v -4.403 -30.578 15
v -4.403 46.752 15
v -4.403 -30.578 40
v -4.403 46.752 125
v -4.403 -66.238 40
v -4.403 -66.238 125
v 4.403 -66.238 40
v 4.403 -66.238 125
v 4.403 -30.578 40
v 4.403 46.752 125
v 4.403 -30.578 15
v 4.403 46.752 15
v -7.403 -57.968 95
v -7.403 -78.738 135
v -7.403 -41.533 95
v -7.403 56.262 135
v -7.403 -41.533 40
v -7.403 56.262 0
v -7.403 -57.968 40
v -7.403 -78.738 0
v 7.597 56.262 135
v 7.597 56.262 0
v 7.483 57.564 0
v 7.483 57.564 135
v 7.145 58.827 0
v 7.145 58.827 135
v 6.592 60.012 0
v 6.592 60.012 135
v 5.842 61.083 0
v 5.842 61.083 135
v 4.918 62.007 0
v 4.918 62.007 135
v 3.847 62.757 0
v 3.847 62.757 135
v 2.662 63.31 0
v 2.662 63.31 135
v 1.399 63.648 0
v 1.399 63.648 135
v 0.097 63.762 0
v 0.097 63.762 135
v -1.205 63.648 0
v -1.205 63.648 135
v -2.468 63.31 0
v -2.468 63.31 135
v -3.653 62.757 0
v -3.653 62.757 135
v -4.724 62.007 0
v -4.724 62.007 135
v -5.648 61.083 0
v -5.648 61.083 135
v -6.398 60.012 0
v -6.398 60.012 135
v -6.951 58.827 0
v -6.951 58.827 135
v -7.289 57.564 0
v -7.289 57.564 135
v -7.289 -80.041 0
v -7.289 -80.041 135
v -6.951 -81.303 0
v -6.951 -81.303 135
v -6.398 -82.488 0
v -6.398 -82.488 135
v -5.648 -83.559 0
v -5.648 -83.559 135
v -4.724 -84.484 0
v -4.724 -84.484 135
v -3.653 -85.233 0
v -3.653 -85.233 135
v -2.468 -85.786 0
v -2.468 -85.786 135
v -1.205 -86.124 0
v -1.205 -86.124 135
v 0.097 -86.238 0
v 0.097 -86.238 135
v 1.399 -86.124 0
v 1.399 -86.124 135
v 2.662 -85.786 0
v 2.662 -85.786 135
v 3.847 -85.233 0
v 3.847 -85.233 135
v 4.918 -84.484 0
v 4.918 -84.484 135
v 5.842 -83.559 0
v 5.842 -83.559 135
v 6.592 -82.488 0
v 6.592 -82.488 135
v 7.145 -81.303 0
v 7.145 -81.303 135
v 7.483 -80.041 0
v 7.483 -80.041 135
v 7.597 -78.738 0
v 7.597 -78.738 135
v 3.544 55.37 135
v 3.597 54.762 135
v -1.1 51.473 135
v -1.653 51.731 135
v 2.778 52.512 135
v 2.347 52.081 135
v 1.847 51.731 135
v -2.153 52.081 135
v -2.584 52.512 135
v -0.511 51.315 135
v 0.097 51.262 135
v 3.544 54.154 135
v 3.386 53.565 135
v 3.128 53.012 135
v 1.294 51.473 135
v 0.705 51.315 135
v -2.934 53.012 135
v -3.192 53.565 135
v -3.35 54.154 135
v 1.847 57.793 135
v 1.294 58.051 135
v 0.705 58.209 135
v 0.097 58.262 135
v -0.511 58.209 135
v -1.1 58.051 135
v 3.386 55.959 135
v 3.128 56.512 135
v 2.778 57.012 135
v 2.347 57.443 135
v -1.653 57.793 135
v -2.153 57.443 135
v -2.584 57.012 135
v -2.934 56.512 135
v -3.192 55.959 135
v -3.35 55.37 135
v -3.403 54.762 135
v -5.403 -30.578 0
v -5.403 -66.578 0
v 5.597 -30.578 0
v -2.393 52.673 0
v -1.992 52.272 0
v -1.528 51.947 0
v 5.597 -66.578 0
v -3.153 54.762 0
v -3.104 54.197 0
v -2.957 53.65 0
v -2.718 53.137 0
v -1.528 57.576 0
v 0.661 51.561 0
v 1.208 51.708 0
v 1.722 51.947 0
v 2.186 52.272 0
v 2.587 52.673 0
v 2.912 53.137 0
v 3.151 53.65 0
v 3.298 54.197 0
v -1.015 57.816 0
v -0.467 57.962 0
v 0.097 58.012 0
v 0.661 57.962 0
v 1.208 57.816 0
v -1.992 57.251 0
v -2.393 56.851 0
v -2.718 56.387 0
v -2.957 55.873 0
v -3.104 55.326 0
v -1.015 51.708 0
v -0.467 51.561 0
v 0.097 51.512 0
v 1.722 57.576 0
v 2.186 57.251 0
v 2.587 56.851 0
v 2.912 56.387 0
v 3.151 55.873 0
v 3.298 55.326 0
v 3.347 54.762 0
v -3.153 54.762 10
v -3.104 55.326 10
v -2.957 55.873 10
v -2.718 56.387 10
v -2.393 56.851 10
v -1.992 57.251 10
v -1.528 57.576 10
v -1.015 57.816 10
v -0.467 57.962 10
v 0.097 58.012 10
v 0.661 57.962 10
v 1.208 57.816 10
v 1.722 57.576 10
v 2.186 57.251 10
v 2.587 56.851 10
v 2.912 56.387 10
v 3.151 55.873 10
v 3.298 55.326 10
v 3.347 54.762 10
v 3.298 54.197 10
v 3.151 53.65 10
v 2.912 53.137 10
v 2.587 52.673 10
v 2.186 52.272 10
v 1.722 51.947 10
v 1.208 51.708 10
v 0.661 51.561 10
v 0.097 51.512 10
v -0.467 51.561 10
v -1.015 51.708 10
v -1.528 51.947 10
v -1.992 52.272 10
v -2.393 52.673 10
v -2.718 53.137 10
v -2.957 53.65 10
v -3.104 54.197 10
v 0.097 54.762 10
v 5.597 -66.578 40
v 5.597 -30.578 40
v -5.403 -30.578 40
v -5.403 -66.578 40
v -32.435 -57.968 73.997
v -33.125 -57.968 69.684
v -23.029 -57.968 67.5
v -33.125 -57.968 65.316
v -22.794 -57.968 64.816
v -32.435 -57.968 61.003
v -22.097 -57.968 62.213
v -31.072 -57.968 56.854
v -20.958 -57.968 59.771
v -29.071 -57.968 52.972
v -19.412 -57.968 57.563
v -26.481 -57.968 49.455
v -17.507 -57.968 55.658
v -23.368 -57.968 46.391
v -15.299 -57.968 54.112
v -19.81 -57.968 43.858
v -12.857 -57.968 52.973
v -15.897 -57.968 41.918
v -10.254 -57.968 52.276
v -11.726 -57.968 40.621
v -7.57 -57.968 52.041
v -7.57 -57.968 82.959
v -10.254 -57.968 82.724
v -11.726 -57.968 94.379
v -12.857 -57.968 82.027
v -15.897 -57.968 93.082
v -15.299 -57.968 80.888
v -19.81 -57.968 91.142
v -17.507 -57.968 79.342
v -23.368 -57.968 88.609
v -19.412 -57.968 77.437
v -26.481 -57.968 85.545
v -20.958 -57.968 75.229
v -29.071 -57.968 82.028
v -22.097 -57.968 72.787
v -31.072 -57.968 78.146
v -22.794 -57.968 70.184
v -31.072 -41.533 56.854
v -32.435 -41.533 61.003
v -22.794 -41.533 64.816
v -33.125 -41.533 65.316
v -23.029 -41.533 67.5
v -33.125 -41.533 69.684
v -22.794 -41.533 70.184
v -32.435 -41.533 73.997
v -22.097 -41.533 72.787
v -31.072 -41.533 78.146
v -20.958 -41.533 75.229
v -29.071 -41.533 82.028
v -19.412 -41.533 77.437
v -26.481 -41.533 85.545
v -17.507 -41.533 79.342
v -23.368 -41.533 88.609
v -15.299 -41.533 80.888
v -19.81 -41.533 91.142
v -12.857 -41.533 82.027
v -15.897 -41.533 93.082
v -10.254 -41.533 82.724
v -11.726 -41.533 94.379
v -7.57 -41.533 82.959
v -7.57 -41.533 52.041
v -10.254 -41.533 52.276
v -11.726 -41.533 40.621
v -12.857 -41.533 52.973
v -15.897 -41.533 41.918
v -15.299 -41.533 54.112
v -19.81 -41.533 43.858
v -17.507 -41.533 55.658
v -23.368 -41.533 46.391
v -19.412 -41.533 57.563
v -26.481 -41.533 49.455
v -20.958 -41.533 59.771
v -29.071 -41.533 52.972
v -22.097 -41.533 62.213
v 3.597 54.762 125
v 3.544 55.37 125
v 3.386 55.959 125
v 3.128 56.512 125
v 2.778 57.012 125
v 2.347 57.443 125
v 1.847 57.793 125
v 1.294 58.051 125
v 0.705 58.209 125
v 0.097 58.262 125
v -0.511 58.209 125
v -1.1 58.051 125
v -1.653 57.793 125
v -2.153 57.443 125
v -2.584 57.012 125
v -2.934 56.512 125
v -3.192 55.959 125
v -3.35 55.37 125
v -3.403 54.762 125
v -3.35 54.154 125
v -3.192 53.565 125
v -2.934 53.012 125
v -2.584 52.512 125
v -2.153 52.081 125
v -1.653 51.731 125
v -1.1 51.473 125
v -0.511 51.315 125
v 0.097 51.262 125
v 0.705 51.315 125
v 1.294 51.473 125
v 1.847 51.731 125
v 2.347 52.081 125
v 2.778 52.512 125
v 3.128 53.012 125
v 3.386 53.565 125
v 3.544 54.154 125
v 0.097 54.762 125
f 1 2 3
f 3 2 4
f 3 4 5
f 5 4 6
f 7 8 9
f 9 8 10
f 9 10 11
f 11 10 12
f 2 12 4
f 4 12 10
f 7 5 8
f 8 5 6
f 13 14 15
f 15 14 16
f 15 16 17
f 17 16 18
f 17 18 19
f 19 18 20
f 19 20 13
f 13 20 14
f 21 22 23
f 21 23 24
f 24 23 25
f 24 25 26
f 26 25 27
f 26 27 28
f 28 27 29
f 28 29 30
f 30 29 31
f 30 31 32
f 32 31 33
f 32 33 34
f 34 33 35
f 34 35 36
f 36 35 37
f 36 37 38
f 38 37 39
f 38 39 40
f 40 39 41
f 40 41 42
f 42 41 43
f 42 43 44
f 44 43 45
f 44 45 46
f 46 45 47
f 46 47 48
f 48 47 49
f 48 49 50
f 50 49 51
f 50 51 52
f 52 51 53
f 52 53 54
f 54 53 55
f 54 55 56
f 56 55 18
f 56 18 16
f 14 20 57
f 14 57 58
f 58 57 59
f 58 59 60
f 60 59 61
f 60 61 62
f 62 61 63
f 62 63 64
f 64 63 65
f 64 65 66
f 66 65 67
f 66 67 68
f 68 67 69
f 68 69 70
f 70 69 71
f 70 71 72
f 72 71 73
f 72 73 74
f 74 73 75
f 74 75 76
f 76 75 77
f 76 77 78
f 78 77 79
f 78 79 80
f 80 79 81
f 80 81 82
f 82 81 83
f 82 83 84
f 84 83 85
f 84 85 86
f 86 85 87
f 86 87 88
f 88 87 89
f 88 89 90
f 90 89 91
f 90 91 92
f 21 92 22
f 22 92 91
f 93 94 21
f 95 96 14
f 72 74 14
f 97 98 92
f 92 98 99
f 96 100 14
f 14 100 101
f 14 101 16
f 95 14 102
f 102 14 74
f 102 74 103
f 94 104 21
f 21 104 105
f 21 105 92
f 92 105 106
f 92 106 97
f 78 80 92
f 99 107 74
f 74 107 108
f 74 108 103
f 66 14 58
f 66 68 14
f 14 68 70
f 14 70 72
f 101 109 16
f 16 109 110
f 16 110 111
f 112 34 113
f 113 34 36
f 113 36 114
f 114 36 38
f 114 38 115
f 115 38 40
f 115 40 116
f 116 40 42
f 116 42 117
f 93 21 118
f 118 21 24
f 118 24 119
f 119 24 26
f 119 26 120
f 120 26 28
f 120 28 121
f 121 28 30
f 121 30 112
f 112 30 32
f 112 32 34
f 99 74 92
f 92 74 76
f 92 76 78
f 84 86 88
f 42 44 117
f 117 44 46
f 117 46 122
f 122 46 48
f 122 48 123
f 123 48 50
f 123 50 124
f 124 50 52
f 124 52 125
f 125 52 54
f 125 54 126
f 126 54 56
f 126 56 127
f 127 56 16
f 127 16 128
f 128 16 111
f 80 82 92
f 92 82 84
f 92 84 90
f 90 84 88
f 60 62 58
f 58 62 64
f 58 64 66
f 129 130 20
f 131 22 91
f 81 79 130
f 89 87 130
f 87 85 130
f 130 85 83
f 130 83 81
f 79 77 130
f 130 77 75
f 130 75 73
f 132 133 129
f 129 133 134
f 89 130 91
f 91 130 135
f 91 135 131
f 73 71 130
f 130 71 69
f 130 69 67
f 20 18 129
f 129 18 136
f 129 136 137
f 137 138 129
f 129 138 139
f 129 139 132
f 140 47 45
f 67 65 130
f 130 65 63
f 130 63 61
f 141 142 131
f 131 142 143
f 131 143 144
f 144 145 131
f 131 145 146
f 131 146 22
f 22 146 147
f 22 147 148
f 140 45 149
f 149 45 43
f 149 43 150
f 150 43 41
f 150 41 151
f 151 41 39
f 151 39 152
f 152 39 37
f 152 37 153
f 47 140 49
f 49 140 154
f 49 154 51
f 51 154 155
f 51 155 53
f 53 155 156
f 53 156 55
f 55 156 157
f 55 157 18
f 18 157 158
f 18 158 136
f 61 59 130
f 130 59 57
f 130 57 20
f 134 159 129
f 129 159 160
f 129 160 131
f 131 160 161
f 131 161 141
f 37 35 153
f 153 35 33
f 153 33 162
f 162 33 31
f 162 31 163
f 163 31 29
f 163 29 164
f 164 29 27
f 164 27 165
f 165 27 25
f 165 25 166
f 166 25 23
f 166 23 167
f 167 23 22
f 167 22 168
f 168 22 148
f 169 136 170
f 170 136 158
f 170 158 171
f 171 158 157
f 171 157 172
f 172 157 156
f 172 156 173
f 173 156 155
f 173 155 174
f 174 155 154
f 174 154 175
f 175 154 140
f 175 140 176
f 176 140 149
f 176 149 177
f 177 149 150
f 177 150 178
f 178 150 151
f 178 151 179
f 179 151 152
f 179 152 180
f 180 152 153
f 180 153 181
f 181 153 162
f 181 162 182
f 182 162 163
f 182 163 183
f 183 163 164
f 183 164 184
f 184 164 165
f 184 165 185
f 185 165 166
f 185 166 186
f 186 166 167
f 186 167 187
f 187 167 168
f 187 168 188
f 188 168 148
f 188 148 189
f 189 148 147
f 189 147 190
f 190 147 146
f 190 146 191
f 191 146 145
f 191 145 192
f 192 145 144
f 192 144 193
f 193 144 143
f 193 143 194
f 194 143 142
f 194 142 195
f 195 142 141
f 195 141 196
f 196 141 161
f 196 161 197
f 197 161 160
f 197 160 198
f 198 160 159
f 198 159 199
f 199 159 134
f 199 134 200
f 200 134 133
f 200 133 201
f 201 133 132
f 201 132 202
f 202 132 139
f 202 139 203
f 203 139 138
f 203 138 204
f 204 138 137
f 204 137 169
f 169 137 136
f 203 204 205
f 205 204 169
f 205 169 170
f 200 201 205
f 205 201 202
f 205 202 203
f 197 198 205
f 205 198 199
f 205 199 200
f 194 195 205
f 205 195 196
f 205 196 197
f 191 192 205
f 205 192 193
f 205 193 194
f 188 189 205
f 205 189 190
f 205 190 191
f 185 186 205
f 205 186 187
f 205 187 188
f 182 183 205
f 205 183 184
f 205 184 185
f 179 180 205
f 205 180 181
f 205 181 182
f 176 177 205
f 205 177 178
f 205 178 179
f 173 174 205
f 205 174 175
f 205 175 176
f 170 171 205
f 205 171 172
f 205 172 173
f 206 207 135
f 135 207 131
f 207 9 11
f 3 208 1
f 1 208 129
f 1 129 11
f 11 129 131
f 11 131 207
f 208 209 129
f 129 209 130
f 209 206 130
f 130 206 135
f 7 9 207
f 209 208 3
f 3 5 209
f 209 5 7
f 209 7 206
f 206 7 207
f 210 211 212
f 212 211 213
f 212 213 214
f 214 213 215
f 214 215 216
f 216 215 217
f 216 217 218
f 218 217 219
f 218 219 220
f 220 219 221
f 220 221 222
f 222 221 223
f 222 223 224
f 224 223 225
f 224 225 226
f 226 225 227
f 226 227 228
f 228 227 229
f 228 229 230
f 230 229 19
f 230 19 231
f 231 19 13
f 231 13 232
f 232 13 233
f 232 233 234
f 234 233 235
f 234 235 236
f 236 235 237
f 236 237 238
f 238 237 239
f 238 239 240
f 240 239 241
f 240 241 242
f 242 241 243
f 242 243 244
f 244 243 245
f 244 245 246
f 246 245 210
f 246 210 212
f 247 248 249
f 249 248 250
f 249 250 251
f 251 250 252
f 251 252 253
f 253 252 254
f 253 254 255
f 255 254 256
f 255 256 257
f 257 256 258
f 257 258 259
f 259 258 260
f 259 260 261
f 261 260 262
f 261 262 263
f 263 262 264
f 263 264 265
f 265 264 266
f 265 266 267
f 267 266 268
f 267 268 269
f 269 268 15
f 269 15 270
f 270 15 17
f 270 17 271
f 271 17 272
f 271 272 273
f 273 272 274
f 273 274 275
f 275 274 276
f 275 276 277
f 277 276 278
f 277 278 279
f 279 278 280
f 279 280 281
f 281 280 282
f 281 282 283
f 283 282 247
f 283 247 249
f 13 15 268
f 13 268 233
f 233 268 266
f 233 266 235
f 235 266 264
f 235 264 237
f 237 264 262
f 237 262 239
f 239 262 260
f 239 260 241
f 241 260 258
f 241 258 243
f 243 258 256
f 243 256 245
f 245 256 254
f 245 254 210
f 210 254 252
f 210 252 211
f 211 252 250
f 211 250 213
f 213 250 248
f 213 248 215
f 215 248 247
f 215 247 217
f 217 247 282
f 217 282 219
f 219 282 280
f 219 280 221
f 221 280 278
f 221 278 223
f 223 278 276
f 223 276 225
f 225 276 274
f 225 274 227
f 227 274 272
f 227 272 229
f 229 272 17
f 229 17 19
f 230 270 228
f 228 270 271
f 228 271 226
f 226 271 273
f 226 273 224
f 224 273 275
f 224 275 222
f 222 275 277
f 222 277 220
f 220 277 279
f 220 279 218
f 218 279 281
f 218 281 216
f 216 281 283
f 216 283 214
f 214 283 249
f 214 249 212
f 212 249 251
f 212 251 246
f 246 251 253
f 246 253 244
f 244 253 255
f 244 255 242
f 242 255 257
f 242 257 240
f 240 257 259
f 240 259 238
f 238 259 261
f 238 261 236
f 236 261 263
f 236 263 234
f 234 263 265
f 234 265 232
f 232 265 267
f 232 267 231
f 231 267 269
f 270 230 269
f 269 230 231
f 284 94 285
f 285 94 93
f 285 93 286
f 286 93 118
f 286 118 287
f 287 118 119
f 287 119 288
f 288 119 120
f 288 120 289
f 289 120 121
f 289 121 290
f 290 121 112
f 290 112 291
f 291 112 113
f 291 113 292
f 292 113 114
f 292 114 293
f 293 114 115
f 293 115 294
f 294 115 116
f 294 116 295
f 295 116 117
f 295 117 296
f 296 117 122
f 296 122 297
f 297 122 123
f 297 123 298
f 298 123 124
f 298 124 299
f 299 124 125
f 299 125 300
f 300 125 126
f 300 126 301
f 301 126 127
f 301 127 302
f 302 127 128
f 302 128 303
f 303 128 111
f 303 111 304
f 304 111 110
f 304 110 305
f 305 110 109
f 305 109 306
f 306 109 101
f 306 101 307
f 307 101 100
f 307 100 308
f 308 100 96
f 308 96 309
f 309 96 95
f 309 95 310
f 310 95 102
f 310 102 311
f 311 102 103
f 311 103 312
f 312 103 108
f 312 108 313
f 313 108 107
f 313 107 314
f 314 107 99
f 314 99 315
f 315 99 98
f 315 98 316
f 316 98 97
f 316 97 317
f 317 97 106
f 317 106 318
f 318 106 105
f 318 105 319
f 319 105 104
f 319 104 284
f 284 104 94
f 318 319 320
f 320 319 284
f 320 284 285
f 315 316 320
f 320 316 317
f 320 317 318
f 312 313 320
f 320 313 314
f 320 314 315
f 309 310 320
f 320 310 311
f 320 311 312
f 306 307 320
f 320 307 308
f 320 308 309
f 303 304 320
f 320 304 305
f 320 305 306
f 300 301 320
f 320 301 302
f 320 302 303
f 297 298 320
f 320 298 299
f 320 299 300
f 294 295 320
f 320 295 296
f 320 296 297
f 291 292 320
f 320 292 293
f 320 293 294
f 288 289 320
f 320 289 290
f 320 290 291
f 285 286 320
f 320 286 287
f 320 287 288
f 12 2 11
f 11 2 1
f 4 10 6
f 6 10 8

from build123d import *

# Parameters (mm, degrees)
BOSS_EXTRUDE1_DEPTH = 135
SKETCH3_R           = 3.25
CUT_EXTRUDE2_DEPTH  = 10
SKETCH6_W           = 11
SKETCH6_H           = 36
CUT_EXTRUDE3_DEPTH  = 40
SKETCH7_W           = 55
SKETCH7_H           = 16.435142828
BOSS_EXTRUDE2_DEPTH = 35
CUT_EXTRUDE4_DEPTH  = 20
CUT_EXTRUDE5_DEPTH  = 20
SKETCH12_R          = 3.5
CUT_EXTRUDE6_DEPTH  = 10
CUT_EXTRUDE7_DEPTH  = 120
SKETCH14_W          = 10
SKETCH14_H          = 112.990035736
BOSS_EXTRUDE3_DEPTH = 9


with BuildPart() as part:
    # Sketch2 → Boss-Extrude1 (new body)
    with BuildSketch(Plane.XY):
        with BuildLine():
            Line((-7.403081865, 56.261800555), (-7.403081865, -78.738199445))
            ThreePointArc((-7.403081865, -78.738199445), (0.096918135, -86.238199445), (7.596918135, -78.738199445))
            Line((7.596918135, -78.738199445), (7.596918135, 56.261800555))
            ThreePointArc((7.596918135, 56.261800555), (0.096918135, 63.761800555), (-7.403081865, 56.261800555))
        make_face()
    extrude(amount=BOSS_EXTRUDE1_DEPTH)

    # Sketch3 → Cut-Extrude2 (cut)
    with BuildSketch(Plane(origin=(0, 0, 0), x_dir=(-1, 0, 0), z_dir=(0, 0, -1))):
        with Locations((-0.096918135, 54.761800555)):
            Circle(SKETCH3_R)
    extrude(amount=-CUT_EXTRUDE2_DEPTH, mode=Mode.SUBTRACT)

    # Sketch6 → Cut-Extrude3 (cut)
    with BuildSketch(Plane(origin=(0, 0, 0), x_dir=(-1, 0, 0), z_dir=(0, 0, -1))):
        with Locations((-0.096918135, -48.578199445)):
            Rectangle(SKETCH6_W, SKETCH6_H)
    extrude(amount=-CUT_EXTRUDE3_DEPTH, mode=Mode.SUBTRACT)

    # Sketch7 → Boss-Extrude2 (add)
    with BuildSketch(Plane.ZY.offset(7.403081865)):
        with Locations((67.5, -49.750557846)):
            Rectangle(SKETCH7_W, SKETCH7_H)
    extrude(amount=BOSS_EXTRUDE2_DEPTH)

    # Sketch10 → Cut-Extrude4 (cut)
    with BuildSketch(Plane(origin=(0, -41.532986432, 0), x_dir=(1, 0, 0), z_dir=(0, 1, 0))):
        with BuildLine():
            Line((-7.403081865, -40), (-42.403081865, -40))
            Line((-42.403081865, -40), (-42.403081865, -95))
            Line((-42.403081865, -95), (-7.403081865, -95))
            ThreePointArc((-7.403081865, -95), (-33.21161021, -67.5), (-7.403081865, -40))
        make_face()
    extrude(amount=-CUT_EXTRUDE4_DEPTH, mode=Mode.SUBTRACT)

    # Sketch11 → Cut-Extrude5 (cut)
    with BuildSketch(Plane(origin=(0, -41.532986432, 0), x_dir=(1, 0, 0), z_dir=(0, 1, 0))):
        with BuildLine():
            Line((-7.569996139, -52.041059143), (-7.569996139, -82.958940857))
            ThreePointArc((-7.569996139, -82.958940857), (-23.028936996, -67.5), (-7.569996139, -52.041059143))
        make_face()
    extrude(amount=-CUT_EXTRUDE5_DEPTH, mode=Mode.SUBTRACT)

    # Sketch12 → Cut-Extrude6 (cut)
    with BuildSketch(Plane.XY.offset(135)):
        with Locations((0.096918135, 54.761800555)):
            Circle(SKETCH12_R)
    extrude(amount=-CUT_EXTRUDE6_DEPTH, mode=Mode.SUBTRACT)

    # Sketch13 → Cut-Extrude7 (cut)
    with BuildSketch(Plane.XY.offset(135)):
        Polygon((4.403081865, 46.751836291), (-4.403081865, 46.751836291), (-4.403081865, -46.751836291), (-4.403081865, -66.238199445), (4.403081865, -66.238199445), (4.403081865, -46.751836291), align=None)
    extrude(amount=-CUT_EXTRUDE7_DEPTH, mode=Mode.SUBTRACT)

    # Sketch14 → Boss-Extrude3 (add)
    with BuildSketch(Plane.ZY.offset(-4.403081865)):
        with Locations((130, -9.743181577)):
            Rectangle(SKETCH14_W, SKETCH14_H)
    extrude(amount=BOSS_EXTRUDE3_DEPTH)


solid = part.part
